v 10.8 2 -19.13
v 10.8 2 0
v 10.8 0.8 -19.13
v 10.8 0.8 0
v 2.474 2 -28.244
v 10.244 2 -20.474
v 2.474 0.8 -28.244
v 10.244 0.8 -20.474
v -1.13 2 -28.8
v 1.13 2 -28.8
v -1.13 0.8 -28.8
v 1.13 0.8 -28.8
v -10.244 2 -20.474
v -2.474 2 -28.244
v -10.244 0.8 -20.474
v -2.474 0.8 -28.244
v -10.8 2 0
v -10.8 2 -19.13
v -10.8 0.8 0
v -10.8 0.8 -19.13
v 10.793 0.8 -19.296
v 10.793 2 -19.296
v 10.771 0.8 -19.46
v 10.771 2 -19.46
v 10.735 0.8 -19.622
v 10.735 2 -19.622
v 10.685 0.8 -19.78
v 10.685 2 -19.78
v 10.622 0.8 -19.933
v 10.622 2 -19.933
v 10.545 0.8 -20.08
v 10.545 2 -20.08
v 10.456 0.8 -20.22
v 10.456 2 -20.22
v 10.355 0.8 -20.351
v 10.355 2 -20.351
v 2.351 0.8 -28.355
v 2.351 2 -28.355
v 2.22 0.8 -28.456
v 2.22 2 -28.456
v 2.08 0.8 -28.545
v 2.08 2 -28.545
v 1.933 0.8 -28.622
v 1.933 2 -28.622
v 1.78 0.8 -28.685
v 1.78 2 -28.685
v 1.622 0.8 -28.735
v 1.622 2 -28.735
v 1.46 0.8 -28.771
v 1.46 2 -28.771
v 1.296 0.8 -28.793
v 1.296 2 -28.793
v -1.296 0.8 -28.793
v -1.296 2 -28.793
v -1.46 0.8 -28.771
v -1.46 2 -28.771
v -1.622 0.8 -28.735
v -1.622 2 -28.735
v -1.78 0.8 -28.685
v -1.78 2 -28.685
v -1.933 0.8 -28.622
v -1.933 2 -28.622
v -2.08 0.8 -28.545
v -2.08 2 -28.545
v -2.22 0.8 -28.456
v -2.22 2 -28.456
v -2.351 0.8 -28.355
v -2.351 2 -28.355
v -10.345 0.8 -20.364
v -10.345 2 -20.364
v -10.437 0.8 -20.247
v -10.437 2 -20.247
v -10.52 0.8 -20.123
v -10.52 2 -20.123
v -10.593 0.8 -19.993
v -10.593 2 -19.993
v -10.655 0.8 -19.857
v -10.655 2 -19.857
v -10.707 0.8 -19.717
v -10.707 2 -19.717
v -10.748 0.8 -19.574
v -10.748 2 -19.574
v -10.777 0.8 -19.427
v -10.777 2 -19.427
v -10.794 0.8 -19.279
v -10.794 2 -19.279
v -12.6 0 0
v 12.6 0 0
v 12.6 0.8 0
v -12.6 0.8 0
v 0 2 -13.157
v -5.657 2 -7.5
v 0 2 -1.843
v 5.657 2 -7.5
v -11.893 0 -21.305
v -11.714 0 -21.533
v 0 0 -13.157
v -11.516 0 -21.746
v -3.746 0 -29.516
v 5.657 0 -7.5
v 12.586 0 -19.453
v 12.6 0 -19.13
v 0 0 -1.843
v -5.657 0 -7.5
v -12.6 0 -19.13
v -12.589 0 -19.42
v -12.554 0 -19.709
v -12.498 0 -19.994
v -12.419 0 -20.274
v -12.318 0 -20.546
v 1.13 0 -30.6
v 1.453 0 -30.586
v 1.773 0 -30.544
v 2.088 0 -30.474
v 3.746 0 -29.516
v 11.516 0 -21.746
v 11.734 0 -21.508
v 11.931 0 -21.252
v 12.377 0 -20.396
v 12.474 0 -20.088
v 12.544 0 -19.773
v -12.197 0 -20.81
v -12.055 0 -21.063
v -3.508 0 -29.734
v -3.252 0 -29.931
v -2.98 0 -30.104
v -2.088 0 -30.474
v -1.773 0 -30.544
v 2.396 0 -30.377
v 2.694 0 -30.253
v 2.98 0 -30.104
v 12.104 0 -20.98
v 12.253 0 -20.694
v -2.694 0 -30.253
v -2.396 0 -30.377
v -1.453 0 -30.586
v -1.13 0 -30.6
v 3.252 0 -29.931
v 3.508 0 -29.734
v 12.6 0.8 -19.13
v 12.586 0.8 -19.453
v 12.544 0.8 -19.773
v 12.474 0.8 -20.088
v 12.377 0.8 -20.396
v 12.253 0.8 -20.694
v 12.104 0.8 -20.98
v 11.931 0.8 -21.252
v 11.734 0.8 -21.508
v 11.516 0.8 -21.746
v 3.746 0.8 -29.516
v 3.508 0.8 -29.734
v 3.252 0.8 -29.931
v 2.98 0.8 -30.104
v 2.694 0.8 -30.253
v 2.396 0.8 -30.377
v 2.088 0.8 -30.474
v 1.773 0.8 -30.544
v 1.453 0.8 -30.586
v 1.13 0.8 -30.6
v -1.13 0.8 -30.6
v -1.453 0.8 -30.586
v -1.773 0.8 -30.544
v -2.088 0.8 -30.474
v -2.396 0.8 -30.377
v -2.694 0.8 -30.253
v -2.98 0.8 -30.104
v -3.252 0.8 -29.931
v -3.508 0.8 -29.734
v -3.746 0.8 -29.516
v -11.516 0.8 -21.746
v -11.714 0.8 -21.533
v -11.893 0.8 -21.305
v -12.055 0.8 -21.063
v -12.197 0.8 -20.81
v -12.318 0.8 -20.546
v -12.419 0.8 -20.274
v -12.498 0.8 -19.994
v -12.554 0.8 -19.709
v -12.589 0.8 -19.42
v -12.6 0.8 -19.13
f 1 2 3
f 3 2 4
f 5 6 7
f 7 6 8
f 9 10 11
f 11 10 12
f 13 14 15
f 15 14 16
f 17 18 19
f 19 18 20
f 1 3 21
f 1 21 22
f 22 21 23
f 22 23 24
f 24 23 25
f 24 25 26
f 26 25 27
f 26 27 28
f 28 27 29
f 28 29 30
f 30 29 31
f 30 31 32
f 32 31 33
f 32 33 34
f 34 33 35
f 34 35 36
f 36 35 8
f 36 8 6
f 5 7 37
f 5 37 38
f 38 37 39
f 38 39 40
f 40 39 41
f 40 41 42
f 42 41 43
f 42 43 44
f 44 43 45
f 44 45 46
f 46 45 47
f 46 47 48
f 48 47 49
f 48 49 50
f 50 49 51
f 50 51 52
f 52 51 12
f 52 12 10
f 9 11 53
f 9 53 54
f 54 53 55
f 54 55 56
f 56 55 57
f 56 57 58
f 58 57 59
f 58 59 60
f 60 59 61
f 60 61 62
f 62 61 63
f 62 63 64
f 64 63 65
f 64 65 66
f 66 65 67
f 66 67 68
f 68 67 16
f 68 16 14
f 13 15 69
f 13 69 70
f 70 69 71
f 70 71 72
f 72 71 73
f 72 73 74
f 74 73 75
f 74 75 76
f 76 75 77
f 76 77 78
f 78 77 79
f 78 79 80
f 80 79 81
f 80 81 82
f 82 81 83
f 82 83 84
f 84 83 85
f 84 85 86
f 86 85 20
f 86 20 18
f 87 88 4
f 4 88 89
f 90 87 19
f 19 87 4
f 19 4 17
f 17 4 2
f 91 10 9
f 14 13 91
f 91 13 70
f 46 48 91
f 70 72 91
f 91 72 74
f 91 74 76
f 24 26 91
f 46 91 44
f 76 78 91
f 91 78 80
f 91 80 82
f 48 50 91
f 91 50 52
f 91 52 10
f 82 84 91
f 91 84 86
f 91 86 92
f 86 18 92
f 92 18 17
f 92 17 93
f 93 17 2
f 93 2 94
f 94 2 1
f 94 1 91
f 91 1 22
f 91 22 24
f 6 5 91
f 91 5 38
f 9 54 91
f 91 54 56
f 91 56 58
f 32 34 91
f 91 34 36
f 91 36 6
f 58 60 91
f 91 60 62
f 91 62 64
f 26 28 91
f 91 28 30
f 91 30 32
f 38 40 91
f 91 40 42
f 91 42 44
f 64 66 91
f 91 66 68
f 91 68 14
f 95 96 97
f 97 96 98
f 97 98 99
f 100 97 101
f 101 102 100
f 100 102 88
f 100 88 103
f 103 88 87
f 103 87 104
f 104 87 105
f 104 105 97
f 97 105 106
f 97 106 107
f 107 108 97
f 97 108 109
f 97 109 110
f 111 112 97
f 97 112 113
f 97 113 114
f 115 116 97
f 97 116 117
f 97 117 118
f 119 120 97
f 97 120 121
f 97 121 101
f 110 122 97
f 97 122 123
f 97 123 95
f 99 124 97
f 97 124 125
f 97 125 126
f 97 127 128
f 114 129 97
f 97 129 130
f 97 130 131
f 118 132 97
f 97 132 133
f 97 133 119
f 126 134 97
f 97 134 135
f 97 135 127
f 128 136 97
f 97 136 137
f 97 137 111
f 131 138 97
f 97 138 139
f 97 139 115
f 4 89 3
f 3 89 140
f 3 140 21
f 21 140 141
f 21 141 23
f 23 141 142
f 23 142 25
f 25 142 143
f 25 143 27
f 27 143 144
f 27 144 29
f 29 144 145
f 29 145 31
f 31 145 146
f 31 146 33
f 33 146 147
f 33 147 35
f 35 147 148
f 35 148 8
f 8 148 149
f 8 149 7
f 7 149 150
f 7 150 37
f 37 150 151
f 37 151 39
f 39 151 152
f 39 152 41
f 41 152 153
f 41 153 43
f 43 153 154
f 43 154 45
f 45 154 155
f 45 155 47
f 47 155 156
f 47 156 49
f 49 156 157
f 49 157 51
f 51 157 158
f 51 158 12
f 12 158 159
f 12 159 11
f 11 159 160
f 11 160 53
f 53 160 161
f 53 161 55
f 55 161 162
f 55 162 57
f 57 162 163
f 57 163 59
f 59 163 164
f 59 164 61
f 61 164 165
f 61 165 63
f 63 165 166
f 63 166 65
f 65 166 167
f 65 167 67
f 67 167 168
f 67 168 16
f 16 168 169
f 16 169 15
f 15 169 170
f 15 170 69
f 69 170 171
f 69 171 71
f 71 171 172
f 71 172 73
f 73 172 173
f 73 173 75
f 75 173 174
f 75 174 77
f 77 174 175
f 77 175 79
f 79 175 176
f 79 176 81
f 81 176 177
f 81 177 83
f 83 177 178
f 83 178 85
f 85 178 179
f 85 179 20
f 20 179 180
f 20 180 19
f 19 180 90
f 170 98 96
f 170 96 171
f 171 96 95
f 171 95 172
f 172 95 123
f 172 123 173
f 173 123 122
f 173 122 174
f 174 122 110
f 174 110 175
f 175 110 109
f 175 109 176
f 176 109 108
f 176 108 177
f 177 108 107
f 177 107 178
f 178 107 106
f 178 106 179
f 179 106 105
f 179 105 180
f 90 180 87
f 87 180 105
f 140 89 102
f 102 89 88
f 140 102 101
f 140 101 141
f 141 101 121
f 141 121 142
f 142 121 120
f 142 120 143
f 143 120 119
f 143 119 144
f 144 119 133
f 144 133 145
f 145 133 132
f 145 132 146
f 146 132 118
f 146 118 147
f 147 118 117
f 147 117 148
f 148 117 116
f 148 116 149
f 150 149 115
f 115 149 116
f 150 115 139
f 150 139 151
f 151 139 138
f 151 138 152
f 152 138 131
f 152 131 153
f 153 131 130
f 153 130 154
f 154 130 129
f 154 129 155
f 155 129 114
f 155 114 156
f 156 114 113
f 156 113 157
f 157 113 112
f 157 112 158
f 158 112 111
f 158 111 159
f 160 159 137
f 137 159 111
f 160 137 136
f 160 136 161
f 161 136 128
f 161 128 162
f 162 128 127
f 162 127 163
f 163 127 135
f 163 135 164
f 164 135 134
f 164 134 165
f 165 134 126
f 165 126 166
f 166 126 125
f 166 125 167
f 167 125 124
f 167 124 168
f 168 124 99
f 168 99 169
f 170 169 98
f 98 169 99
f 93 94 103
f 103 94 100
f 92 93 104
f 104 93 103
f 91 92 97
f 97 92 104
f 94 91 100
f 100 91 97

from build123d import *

# Parameters (mm, degrees)
BOSS_EXTRUDE1_DEPTH = 2
FILLET1_R           = 1.9
BOSS_EXTRUDE2_DEPTH = 0.8
CUT_EXTRUDE1_REACH  = 35.153


with BuildPart() as part:
    # Sketch1 → Boss-Extrude1 (new body)
    with BuildSketch(Plane(origin=(0, 0, 0), x_dir=(1, 0, 0), z_dir=(0, 1, 0))):
        Polygon((-10.8, 0), (-10.8, 19.917157288), (-1.917157288, 28.8), (1.917157288, 28.8), (10.8, 19.917157288), (10.8, 0), align=None)
    extrude(amount=BOSS_EXTRUDE1_DEPTH)

    # Fillet1
    fillet1_edges = [part.edges().sort_by_distance(p)[0] for p in [
        (-10.8, 1, -19.917157288),
        (-1.917157288, 1, -28.8),
        (1.917157288, 1, -28.8),
        (10.8, 1, -19.917157288),
    ]]
    fillet(fillet1_edges, radius=FILLET1_R)

    # Sketch2 → Boss-Extrude2 (add)
    with BuildSketch(Plane.XZ):
        with BuildLine():
            Line((12.6, 0), (-12.6, 0))
            Line((-12.6, 0), (-12.6, -19.130151519))
            ThreePointArc((-12.6, -19.130151519), (-12.31835427, -20.546080219), (-11.51629509, -21.746446609))
            Line((-11.51629509, -21.746446609), (-3.746446609, -29.51629509))
            ThreePointArc((-3.746446609, -29.51629509), (-2.546080219, -30.31835427), (-1.130151519, -30.6))
            Line((-1.130151519, -30.6), (1.130151519, -30.6))
            ThreePointArc((1.130151519, -30.6), (2.546080219, -30.31835427), (3.746446609, -29.51629509))
            Line((3.746446609, -29.51629509), (11.51629509, -21.746446609))
            ThreePointArc((11.51629509, -21.746446609), (12.31835427, -20.546080219), (12.6, -19.130151519))
            Line((12.6, -19.130151519), (12.6, 0))
        make_face()
    extrude(amount=-BOSS_EXTRUDE2_DEPTH)

    # Sketch3 → Cut-Extrude1 (cut, up to next)
    with BuildSketch(Plane(origin=(0, 2, 0), x_dir=(1, 0, 0), z_dir=(0, 1, 0)), mode=Mode.PRIVATE) as cut_extrude1_sk1:
        Polygon((5.656854249, 7.5), (0, 13.156854249), (-5.656854249, 7.5), (0, 1.843145751), align=None)
    cut_extrude1_tool1 = extrude(cut_extrude1_sk1.sketch, amount=-CUT_EXTRUDE1_REACH, mode=Mode.PRIVATE) & part.part
    add(cut_extrude1_tool1.solids().sort_by_distance((0, 2, -7.5))[0], mode=Mode.SUBTRACT)


solid = part.part
